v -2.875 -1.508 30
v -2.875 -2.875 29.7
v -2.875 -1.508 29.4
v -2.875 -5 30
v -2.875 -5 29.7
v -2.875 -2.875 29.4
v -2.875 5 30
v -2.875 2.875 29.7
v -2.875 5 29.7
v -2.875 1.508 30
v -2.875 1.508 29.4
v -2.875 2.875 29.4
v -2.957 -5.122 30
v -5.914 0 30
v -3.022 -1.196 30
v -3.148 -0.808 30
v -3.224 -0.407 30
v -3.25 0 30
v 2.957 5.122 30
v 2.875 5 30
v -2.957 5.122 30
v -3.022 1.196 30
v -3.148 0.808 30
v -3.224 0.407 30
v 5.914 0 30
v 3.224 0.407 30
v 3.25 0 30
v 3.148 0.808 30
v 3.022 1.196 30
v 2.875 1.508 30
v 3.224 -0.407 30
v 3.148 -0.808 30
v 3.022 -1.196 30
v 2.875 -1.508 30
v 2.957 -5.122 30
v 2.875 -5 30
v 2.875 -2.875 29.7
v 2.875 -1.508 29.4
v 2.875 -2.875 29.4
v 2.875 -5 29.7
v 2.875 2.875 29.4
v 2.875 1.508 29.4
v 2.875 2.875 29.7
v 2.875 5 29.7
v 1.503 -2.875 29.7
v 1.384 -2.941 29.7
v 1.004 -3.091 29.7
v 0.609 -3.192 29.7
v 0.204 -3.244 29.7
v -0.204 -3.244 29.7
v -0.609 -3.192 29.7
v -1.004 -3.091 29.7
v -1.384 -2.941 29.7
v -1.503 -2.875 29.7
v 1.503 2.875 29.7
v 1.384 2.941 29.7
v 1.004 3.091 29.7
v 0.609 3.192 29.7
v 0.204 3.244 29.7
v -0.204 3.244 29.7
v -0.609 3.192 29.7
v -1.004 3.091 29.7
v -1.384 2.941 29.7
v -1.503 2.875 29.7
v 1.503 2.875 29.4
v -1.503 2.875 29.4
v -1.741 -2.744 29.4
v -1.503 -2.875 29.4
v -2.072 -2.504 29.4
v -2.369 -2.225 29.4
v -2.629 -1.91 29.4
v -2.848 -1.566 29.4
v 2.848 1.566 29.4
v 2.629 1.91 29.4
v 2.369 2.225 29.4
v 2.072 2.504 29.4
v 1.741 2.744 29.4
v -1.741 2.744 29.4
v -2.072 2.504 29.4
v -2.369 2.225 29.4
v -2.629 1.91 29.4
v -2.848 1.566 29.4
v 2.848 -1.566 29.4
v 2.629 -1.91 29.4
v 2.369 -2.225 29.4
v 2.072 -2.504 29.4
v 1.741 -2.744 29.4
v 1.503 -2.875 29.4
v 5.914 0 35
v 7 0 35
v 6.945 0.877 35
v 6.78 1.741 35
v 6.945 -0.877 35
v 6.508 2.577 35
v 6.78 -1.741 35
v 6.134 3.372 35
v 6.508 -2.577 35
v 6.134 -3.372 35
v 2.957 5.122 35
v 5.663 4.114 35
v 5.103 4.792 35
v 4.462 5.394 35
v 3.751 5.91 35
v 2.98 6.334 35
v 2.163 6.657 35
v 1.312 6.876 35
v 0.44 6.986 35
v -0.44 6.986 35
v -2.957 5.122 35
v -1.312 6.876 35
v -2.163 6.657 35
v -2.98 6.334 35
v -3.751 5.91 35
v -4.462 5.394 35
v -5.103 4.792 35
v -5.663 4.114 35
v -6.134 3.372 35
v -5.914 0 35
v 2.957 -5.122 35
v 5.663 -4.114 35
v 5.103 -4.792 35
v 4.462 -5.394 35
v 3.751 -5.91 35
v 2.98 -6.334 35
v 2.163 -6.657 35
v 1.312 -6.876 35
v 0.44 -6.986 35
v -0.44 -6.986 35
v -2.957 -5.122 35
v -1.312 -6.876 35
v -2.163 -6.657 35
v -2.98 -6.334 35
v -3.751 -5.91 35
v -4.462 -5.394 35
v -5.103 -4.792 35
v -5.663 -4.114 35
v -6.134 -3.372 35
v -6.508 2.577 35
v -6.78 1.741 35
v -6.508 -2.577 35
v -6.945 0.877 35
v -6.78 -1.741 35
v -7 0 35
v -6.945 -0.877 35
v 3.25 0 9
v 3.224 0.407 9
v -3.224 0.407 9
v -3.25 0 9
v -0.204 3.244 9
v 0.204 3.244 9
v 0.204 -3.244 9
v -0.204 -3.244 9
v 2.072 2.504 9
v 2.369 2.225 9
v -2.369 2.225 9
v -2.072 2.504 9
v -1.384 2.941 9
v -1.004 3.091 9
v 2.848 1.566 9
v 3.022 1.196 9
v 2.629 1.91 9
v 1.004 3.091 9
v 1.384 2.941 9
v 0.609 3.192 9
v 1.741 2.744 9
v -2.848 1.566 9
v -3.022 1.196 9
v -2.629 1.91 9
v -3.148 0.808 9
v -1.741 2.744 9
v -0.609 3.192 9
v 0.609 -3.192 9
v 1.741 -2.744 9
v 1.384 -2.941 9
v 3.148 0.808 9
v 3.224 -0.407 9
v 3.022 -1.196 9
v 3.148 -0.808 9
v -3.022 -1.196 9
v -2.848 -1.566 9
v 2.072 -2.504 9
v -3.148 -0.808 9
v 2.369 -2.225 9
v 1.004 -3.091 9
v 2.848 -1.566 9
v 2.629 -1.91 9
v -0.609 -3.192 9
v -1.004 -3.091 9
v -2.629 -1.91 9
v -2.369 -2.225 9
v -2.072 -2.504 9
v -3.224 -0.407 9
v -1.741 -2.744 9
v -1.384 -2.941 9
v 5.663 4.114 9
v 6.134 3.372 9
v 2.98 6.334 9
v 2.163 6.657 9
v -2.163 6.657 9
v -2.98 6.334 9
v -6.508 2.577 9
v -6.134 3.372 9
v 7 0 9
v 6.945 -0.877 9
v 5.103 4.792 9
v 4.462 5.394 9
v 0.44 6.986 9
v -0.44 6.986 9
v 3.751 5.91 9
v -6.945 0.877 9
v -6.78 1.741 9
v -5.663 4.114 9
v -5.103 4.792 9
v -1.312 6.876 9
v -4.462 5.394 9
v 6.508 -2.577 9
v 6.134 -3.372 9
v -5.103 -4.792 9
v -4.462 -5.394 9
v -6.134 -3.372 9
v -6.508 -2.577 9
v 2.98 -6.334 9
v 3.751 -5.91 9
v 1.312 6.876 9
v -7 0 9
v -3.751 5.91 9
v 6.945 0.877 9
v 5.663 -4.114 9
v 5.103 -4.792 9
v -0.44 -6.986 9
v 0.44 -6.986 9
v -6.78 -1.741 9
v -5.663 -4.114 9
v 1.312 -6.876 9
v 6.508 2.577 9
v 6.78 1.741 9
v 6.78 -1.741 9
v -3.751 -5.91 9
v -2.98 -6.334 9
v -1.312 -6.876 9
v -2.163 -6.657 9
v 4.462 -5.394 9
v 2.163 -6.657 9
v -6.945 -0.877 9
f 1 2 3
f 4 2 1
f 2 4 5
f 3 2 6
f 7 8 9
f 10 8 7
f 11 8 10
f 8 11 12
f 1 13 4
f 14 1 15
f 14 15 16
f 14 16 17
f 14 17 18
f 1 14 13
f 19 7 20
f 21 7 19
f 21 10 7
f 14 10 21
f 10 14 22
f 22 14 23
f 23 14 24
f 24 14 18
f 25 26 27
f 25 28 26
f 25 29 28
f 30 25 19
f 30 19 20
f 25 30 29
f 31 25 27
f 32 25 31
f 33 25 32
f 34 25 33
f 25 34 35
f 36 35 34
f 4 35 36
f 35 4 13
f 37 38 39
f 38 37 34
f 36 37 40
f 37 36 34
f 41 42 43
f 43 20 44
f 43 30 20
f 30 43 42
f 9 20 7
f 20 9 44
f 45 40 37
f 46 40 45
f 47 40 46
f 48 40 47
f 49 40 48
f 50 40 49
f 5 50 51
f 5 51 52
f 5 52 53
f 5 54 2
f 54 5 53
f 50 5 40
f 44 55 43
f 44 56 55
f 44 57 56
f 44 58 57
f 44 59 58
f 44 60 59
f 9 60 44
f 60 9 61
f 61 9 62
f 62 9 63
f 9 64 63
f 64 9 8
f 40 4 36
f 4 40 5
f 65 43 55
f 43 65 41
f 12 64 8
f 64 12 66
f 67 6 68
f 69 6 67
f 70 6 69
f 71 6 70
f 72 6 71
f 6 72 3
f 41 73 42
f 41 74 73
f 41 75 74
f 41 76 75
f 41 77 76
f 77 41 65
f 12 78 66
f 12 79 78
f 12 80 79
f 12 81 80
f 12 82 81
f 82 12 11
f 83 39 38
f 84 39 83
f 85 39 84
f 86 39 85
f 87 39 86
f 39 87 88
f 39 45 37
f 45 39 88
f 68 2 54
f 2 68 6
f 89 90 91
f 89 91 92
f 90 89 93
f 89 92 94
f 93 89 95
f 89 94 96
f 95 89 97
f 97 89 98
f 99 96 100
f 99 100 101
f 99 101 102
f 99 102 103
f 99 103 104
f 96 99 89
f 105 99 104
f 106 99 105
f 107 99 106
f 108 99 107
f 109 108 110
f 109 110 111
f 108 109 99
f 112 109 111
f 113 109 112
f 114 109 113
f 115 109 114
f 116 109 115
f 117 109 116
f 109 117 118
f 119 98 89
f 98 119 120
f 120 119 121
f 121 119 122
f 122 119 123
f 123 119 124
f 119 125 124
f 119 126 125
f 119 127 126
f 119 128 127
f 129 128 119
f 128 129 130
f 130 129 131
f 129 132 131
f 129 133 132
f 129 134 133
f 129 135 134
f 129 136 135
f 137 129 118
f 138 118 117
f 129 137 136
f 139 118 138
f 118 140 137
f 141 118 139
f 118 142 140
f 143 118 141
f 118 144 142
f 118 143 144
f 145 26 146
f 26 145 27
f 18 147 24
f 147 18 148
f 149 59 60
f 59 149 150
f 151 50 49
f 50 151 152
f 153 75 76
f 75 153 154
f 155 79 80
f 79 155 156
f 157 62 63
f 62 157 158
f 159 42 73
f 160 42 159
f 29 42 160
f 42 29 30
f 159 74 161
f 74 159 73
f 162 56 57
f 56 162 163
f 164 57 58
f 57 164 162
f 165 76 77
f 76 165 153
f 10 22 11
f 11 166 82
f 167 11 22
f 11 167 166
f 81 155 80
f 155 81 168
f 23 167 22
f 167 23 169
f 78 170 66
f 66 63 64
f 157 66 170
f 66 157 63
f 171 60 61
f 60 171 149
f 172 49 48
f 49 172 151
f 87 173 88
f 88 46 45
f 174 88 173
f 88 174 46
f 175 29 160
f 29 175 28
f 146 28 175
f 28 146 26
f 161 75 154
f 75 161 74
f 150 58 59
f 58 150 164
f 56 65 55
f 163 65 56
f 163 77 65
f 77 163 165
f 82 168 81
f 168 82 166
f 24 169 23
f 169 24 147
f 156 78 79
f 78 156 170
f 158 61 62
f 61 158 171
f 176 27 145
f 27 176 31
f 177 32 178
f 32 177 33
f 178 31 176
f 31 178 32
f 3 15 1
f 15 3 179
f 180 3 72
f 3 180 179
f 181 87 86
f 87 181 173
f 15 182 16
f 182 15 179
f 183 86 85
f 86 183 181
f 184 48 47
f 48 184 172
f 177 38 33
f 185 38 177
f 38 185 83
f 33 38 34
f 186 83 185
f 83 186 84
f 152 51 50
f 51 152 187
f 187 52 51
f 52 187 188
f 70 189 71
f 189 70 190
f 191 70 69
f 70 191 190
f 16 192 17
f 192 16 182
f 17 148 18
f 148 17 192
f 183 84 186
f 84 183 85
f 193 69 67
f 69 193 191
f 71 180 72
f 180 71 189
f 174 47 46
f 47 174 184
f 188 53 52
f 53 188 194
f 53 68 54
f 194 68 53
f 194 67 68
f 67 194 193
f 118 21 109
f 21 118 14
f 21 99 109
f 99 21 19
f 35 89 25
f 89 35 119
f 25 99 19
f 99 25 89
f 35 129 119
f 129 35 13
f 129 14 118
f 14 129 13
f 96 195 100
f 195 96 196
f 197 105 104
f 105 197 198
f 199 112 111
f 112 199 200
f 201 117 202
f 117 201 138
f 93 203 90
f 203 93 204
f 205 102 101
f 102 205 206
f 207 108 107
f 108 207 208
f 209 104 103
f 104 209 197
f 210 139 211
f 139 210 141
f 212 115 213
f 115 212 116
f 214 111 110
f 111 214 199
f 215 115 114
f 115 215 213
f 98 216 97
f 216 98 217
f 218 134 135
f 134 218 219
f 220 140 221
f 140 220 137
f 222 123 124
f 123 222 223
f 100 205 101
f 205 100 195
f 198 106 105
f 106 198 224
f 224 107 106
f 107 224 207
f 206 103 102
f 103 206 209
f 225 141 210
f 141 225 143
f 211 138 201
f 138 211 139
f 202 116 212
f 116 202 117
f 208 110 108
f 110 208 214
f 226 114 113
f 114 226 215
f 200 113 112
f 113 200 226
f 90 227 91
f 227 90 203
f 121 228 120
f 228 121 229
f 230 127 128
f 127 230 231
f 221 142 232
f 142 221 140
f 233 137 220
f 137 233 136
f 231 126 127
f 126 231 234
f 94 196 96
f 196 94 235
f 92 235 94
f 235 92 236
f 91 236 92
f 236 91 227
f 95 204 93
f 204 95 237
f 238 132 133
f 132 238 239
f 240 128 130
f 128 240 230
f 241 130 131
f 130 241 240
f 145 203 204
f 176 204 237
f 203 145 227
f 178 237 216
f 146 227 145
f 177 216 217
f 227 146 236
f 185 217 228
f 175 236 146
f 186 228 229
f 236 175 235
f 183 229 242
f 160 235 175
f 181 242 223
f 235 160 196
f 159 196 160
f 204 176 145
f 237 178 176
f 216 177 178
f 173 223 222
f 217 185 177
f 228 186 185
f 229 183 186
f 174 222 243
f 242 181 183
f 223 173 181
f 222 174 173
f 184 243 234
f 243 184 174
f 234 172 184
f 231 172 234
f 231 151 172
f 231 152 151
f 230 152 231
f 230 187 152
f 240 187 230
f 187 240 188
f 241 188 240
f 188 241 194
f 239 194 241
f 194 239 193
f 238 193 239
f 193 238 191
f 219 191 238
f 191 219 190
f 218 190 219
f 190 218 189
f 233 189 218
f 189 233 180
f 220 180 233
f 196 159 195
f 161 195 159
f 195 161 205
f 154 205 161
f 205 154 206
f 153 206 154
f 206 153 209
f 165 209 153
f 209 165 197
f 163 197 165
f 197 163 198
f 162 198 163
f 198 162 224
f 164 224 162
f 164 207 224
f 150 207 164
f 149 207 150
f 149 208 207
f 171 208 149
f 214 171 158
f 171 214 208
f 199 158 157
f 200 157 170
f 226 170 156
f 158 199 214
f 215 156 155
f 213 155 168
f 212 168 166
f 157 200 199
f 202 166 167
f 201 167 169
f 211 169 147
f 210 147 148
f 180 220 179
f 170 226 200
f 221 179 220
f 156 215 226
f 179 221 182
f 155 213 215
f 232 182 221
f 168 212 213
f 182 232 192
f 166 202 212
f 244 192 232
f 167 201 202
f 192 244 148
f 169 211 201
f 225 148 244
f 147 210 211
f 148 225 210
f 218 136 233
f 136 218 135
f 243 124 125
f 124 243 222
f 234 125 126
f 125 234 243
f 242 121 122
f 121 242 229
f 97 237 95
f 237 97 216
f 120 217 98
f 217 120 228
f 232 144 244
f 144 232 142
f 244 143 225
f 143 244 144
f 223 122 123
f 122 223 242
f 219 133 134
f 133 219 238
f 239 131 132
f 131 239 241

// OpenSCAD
$fn = 50;


difference() {
	union() {
		translate(v = [0, 0, 9.0000000000]) {
			cylinder(h = 26, r = 7.0000000000);
		}
	}
	union() {
		translate(v = [0, 0, 35]) {
			rotate(a = [0, 0, 0]) {
				difference() {
					union() {
						#translate(v = [-2.8750000000, -5.0000000000, -5.3000000000]) {
							cube(size = [5.7500000000, 10, 0.3000000000]);
						}
						#translate(v = [-2.8750000000, -2.8750000000, -5.6000000000]) {
							cube(size = [5.7500000000, 5.7500000000, 0.3000000000]);
						}
						#translate(v = [-2.8750000000, -5.0000000000, 0]) {
							cube(size = [5.7500000000, 10, 0.3000000000]);
						}
						#translate(v = [-2.8750000000, -2.8750000000, 0.3000000000]) {
							cube(size = [5.7500000000, 5.7500000000, 0.3000000000]);
						}
						#translate(v = [0, 0, -100.0000000000]) {
							cylinder(h = 200, r = 3.2500000000);
						}
						translate(v = [0, 0, -5]) {
							#linear_extrude(height = 5) {
								polygon(points = [[5.9142500000, 0.0000000000], [2.9571250000, 5.1218907443], [-2.9571250000, 5.1218907443], [-5.9142500000, 0.0000000000], [-2.9571250000, -5.1218907443], [2.9571250000, -5.1218907443]]);
							}
						}
						#translate(v = [-2.8750000000, -5.0000000000, -5.3000000000]) {
							cube(size = [5.7500000000, 10, 0.3000000000]);
						}
						#translate(v = [-2.8750000000, -2.8750000000, -5.6000000000]) {
							cube(size = [5.7500000000, 5.7500000000, 0.3000000000]);
						}
						#translate(v = [-2.8750000000, -5.0000000000, 0]) {
							cube(size = [5.7500000000, 10, 0.3000000000]);
						}
						#translate(v = [-2.8750000000, -2.8750000000, 0.3000000000]) {
							cube(size = [5.7500000000, 5.7500000000, 0.3000000000]);
						}
						#translate(v = [0, 0, -100.0000000000]) {
							cylinder(h = 200, r = 3.2500000000);
						}
						#translate(v = [-2.8750000000, -5.0000000000, -5.3000000000]) {
							cube(size = [5.7500000000, 10, 0.3000000000]);
						}
						#translate(v = [-2.8750000000, -2.8750000000, -5.6000000000]) {
							cube(size = [5.7500000000, 5.7500000000, 0.3000000000]);
						}
						#translate(v = [-2.8750000000, -5.0000000000, 0]) {
							cube(size = [5.7500000000, 10, 0.3000000000]);
						}
						#translate(v = [-2.8750000000, -2.8750000000, 0.3000000000]) {
							cube(size = [5.7500000000, 5.7500000000, 0.3000000000]);
						}
						#translate(v = [0, 0, -100.0000000000]) {
							cylinder(h = 200, r = 3.2500000000);
						}
					}
					union();
				}
			}
		}
		#translate(v = [0, 0, -100.0000000000]) {
			cylinder(h = 200, r = 3.2500000000);
		}
	}
}
